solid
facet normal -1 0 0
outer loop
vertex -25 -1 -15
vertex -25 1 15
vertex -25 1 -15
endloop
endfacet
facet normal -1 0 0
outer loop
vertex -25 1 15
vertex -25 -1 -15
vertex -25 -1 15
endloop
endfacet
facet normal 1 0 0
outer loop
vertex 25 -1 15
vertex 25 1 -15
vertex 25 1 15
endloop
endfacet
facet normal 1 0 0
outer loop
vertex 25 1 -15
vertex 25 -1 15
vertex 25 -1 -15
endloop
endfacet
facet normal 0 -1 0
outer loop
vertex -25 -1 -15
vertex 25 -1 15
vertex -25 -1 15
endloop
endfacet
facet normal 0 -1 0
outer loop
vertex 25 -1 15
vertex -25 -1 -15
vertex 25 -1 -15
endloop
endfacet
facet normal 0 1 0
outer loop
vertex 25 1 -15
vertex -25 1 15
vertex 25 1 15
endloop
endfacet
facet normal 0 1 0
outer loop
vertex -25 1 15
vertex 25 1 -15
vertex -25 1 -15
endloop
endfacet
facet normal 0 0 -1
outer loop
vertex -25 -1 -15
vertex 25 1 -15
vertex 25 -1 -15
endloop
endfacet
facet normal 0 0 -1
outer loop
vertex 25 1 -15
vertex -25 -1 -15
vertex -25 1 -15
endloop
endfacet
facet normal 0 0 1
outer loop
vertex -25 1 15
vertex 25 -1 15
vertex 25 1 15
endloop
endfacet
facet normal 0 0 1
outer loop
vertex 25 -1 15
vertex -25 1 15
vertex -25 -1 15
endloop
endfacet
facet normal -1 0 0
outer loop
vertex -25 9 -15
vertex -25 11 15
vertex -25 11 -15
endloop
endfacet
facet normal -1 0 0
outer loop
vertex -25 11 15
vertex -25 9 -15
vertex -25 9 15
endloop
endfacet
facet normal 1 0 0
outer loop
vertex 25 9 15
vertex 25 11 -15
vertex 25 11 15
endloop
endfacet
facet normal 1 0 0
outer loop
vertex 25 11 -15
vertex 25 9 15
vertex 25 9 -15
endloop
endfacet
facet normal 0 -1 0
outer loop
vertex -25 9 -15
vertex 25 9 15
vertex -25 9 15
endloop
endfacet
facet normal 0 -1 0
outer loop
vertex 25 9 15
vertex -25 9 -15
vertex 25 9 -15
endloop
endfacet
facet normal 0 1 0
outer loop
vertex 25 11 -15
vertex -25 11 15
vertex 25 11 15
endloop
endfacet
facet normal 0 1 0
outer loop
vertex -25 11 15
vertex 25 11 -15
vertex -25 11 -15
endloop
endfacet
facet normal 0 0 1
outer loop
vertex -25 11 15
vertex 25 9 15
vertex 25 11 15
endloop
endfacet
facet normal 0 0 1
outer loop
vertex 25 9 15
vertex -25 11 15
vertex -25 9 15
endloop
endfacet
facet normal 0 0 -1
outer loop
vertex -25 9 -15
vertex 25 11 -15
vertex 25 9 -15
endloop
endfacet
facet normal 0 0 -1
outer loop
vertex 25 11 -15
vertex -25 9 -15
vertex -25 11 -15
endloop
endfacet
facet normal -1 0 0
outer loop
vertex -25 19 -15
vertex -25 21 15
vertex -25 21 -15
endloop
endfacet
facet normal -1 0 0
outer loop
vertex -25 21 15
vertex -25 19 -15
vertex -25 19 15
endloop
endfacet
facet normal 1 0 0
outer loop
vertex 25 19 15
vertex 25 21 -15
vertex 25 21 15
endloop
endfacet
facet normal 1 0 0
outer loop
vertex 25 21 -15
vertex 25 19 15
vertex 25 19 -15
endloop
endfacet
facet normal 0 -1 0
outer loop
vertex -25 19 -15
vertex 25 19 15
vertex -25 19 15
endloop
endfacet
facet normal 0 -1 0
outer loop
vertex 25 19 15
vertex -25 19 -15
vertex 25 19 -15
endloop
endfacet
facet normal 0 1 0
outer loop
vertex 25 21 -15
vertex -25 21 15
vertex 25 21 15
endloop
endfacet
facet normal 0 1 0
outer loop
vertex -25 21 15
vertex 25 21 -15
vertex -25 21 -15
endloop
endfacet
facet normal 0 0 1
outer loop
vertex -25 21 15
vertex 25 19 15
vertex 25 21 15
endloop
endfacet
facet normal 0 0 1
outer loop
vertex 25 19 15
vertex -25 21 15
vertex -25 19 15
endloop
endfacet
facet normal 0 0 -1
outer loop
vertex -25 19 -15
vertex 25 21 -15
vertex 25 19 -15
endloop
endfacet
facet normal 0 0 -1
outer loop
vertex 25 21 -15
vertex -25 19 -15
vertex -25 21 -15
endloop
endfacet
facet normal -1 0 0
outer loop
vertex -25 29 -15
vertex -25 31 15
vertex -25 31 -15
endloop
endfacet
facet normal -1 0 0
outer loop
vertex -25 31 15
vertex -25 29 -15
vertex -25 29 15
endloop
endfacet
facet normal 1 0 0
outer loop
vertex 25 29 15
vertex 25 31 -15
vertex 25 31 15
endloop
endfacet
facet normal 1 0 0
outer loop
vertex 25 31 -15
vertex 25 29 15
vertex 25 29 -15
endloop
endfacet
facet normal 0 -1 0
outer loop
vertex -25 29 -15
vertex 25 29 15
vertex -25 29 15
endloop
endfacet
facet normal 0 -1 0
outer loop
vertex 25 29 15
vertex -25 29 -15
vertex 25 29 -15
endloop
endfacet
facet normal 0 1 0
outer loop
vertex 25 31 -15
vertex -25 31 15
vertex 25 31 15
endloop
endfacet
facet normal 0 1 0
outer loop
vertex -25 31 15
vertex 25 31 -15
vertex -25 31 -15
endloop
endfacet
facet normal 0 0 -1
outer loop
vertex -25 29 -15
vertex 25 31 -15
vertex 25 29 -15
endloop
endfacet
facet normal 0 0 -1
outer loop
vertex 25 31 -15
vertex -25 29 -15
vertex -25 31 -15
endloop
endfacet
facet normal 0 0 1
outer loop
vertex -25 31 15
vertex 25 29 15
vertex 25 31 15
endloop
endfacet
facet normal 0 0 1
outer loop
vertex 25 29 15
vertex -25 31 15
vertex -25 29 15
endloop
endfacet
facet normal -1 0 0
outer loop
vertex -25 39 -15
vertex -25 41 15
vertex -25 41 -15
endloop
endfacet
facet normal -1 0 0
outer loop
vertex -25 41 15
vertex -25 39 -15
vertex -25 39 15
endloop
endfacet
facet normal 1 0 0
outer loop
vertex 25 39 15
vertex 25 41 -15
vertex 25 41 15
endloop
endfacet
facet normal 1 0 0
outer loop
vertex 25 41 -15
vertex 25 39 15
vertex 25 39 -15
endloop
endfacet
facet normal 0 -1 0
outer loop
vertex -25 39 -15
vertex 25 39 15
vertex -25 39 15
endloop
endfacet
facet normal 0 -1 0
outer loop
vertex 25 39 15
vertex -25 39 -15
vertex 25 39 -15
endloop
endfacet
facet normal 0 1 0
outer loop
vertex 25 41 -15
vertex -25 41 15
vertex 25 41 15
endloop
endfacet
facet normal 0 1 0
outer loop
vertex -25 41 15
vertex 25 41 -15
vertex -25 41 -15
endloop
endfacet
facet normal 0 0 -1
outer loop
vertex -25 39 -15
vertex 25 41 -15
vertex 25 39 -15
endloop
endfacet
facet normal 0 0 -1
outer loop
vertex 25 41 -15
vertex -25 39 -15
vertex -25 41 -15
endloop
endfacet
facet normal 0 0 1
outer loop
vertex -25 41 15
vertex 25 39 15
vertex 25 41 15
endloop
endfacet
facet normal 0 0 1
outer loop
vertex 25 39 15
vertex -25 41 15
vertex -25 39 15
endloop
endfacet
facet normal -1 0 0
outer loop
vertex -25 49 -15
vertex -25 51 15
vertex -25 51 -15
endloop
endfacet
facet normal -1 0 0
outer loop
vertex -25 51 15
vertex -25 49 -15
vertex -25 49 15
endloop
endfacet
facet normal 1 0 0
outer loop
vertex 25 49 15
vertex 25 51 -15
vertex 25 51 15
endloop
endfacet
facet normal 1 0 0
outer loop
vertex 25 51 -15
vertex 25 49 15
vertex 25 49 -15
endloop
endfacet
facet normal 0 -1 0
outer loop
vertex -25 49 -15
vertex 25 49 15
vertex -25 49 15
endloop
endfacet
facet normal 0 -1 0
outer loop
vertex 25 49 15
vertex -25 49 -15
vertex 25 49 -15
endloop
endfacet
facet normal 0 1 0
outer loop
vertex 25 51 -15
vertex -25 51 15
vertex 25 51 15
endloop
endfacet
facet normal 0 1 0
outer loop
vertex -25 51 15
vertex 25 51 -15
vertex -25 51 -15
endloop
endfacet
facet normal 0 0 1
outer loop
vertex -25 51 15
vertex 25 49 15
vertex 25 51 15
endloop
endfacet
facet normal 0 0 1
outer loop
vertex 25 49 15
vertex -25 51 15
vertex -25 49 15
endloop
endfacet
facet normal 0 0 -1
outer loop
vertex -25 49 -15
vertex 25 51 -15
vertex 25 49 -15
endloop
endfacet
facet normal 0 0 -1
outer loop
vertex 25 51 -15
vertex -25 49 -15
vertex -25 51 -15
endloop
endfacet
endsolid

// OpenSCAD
// Parameters for the rectangular plate
plate_length = 50;  // Length of the plate
plate_width = 30;   // Width of the plate
plate_thickness = 2; // Thickness of the plate
plate_spacing = 10;  // Spacing between plates

// Function to create a rectangular plate
module rectangular_plate() {
    cube([plate_length, plate_width, plate_thickness], center = true);
}

// Generate the individual plates in a vertical orientation
translate([0, 0, 0]) rotate([90, 0, 0]) rectangular_plate(); // Plate 1
translate([0, plate_spacing, 0]) rotate([90, 0, 0]) rectangular_plate(); // Plate 2
translate([0, plate_spacing * 2, 0]) rotate([90, 0, 0]) rectangular_plate(); // Plate 3
translate([0, plate_spacing * 3, 0]) rotate([90, 0, 0]) rectangular_plate(); // Plate 4
translate([0, plate_spacing * 4, 0]) rotate([90, 0, 0]) rectangular_plate(); // Plate 5
translate([0, plate_spacing * 5, 0]) rotate([90, 0, 0]) rectangular_plate(); // Plate 6
